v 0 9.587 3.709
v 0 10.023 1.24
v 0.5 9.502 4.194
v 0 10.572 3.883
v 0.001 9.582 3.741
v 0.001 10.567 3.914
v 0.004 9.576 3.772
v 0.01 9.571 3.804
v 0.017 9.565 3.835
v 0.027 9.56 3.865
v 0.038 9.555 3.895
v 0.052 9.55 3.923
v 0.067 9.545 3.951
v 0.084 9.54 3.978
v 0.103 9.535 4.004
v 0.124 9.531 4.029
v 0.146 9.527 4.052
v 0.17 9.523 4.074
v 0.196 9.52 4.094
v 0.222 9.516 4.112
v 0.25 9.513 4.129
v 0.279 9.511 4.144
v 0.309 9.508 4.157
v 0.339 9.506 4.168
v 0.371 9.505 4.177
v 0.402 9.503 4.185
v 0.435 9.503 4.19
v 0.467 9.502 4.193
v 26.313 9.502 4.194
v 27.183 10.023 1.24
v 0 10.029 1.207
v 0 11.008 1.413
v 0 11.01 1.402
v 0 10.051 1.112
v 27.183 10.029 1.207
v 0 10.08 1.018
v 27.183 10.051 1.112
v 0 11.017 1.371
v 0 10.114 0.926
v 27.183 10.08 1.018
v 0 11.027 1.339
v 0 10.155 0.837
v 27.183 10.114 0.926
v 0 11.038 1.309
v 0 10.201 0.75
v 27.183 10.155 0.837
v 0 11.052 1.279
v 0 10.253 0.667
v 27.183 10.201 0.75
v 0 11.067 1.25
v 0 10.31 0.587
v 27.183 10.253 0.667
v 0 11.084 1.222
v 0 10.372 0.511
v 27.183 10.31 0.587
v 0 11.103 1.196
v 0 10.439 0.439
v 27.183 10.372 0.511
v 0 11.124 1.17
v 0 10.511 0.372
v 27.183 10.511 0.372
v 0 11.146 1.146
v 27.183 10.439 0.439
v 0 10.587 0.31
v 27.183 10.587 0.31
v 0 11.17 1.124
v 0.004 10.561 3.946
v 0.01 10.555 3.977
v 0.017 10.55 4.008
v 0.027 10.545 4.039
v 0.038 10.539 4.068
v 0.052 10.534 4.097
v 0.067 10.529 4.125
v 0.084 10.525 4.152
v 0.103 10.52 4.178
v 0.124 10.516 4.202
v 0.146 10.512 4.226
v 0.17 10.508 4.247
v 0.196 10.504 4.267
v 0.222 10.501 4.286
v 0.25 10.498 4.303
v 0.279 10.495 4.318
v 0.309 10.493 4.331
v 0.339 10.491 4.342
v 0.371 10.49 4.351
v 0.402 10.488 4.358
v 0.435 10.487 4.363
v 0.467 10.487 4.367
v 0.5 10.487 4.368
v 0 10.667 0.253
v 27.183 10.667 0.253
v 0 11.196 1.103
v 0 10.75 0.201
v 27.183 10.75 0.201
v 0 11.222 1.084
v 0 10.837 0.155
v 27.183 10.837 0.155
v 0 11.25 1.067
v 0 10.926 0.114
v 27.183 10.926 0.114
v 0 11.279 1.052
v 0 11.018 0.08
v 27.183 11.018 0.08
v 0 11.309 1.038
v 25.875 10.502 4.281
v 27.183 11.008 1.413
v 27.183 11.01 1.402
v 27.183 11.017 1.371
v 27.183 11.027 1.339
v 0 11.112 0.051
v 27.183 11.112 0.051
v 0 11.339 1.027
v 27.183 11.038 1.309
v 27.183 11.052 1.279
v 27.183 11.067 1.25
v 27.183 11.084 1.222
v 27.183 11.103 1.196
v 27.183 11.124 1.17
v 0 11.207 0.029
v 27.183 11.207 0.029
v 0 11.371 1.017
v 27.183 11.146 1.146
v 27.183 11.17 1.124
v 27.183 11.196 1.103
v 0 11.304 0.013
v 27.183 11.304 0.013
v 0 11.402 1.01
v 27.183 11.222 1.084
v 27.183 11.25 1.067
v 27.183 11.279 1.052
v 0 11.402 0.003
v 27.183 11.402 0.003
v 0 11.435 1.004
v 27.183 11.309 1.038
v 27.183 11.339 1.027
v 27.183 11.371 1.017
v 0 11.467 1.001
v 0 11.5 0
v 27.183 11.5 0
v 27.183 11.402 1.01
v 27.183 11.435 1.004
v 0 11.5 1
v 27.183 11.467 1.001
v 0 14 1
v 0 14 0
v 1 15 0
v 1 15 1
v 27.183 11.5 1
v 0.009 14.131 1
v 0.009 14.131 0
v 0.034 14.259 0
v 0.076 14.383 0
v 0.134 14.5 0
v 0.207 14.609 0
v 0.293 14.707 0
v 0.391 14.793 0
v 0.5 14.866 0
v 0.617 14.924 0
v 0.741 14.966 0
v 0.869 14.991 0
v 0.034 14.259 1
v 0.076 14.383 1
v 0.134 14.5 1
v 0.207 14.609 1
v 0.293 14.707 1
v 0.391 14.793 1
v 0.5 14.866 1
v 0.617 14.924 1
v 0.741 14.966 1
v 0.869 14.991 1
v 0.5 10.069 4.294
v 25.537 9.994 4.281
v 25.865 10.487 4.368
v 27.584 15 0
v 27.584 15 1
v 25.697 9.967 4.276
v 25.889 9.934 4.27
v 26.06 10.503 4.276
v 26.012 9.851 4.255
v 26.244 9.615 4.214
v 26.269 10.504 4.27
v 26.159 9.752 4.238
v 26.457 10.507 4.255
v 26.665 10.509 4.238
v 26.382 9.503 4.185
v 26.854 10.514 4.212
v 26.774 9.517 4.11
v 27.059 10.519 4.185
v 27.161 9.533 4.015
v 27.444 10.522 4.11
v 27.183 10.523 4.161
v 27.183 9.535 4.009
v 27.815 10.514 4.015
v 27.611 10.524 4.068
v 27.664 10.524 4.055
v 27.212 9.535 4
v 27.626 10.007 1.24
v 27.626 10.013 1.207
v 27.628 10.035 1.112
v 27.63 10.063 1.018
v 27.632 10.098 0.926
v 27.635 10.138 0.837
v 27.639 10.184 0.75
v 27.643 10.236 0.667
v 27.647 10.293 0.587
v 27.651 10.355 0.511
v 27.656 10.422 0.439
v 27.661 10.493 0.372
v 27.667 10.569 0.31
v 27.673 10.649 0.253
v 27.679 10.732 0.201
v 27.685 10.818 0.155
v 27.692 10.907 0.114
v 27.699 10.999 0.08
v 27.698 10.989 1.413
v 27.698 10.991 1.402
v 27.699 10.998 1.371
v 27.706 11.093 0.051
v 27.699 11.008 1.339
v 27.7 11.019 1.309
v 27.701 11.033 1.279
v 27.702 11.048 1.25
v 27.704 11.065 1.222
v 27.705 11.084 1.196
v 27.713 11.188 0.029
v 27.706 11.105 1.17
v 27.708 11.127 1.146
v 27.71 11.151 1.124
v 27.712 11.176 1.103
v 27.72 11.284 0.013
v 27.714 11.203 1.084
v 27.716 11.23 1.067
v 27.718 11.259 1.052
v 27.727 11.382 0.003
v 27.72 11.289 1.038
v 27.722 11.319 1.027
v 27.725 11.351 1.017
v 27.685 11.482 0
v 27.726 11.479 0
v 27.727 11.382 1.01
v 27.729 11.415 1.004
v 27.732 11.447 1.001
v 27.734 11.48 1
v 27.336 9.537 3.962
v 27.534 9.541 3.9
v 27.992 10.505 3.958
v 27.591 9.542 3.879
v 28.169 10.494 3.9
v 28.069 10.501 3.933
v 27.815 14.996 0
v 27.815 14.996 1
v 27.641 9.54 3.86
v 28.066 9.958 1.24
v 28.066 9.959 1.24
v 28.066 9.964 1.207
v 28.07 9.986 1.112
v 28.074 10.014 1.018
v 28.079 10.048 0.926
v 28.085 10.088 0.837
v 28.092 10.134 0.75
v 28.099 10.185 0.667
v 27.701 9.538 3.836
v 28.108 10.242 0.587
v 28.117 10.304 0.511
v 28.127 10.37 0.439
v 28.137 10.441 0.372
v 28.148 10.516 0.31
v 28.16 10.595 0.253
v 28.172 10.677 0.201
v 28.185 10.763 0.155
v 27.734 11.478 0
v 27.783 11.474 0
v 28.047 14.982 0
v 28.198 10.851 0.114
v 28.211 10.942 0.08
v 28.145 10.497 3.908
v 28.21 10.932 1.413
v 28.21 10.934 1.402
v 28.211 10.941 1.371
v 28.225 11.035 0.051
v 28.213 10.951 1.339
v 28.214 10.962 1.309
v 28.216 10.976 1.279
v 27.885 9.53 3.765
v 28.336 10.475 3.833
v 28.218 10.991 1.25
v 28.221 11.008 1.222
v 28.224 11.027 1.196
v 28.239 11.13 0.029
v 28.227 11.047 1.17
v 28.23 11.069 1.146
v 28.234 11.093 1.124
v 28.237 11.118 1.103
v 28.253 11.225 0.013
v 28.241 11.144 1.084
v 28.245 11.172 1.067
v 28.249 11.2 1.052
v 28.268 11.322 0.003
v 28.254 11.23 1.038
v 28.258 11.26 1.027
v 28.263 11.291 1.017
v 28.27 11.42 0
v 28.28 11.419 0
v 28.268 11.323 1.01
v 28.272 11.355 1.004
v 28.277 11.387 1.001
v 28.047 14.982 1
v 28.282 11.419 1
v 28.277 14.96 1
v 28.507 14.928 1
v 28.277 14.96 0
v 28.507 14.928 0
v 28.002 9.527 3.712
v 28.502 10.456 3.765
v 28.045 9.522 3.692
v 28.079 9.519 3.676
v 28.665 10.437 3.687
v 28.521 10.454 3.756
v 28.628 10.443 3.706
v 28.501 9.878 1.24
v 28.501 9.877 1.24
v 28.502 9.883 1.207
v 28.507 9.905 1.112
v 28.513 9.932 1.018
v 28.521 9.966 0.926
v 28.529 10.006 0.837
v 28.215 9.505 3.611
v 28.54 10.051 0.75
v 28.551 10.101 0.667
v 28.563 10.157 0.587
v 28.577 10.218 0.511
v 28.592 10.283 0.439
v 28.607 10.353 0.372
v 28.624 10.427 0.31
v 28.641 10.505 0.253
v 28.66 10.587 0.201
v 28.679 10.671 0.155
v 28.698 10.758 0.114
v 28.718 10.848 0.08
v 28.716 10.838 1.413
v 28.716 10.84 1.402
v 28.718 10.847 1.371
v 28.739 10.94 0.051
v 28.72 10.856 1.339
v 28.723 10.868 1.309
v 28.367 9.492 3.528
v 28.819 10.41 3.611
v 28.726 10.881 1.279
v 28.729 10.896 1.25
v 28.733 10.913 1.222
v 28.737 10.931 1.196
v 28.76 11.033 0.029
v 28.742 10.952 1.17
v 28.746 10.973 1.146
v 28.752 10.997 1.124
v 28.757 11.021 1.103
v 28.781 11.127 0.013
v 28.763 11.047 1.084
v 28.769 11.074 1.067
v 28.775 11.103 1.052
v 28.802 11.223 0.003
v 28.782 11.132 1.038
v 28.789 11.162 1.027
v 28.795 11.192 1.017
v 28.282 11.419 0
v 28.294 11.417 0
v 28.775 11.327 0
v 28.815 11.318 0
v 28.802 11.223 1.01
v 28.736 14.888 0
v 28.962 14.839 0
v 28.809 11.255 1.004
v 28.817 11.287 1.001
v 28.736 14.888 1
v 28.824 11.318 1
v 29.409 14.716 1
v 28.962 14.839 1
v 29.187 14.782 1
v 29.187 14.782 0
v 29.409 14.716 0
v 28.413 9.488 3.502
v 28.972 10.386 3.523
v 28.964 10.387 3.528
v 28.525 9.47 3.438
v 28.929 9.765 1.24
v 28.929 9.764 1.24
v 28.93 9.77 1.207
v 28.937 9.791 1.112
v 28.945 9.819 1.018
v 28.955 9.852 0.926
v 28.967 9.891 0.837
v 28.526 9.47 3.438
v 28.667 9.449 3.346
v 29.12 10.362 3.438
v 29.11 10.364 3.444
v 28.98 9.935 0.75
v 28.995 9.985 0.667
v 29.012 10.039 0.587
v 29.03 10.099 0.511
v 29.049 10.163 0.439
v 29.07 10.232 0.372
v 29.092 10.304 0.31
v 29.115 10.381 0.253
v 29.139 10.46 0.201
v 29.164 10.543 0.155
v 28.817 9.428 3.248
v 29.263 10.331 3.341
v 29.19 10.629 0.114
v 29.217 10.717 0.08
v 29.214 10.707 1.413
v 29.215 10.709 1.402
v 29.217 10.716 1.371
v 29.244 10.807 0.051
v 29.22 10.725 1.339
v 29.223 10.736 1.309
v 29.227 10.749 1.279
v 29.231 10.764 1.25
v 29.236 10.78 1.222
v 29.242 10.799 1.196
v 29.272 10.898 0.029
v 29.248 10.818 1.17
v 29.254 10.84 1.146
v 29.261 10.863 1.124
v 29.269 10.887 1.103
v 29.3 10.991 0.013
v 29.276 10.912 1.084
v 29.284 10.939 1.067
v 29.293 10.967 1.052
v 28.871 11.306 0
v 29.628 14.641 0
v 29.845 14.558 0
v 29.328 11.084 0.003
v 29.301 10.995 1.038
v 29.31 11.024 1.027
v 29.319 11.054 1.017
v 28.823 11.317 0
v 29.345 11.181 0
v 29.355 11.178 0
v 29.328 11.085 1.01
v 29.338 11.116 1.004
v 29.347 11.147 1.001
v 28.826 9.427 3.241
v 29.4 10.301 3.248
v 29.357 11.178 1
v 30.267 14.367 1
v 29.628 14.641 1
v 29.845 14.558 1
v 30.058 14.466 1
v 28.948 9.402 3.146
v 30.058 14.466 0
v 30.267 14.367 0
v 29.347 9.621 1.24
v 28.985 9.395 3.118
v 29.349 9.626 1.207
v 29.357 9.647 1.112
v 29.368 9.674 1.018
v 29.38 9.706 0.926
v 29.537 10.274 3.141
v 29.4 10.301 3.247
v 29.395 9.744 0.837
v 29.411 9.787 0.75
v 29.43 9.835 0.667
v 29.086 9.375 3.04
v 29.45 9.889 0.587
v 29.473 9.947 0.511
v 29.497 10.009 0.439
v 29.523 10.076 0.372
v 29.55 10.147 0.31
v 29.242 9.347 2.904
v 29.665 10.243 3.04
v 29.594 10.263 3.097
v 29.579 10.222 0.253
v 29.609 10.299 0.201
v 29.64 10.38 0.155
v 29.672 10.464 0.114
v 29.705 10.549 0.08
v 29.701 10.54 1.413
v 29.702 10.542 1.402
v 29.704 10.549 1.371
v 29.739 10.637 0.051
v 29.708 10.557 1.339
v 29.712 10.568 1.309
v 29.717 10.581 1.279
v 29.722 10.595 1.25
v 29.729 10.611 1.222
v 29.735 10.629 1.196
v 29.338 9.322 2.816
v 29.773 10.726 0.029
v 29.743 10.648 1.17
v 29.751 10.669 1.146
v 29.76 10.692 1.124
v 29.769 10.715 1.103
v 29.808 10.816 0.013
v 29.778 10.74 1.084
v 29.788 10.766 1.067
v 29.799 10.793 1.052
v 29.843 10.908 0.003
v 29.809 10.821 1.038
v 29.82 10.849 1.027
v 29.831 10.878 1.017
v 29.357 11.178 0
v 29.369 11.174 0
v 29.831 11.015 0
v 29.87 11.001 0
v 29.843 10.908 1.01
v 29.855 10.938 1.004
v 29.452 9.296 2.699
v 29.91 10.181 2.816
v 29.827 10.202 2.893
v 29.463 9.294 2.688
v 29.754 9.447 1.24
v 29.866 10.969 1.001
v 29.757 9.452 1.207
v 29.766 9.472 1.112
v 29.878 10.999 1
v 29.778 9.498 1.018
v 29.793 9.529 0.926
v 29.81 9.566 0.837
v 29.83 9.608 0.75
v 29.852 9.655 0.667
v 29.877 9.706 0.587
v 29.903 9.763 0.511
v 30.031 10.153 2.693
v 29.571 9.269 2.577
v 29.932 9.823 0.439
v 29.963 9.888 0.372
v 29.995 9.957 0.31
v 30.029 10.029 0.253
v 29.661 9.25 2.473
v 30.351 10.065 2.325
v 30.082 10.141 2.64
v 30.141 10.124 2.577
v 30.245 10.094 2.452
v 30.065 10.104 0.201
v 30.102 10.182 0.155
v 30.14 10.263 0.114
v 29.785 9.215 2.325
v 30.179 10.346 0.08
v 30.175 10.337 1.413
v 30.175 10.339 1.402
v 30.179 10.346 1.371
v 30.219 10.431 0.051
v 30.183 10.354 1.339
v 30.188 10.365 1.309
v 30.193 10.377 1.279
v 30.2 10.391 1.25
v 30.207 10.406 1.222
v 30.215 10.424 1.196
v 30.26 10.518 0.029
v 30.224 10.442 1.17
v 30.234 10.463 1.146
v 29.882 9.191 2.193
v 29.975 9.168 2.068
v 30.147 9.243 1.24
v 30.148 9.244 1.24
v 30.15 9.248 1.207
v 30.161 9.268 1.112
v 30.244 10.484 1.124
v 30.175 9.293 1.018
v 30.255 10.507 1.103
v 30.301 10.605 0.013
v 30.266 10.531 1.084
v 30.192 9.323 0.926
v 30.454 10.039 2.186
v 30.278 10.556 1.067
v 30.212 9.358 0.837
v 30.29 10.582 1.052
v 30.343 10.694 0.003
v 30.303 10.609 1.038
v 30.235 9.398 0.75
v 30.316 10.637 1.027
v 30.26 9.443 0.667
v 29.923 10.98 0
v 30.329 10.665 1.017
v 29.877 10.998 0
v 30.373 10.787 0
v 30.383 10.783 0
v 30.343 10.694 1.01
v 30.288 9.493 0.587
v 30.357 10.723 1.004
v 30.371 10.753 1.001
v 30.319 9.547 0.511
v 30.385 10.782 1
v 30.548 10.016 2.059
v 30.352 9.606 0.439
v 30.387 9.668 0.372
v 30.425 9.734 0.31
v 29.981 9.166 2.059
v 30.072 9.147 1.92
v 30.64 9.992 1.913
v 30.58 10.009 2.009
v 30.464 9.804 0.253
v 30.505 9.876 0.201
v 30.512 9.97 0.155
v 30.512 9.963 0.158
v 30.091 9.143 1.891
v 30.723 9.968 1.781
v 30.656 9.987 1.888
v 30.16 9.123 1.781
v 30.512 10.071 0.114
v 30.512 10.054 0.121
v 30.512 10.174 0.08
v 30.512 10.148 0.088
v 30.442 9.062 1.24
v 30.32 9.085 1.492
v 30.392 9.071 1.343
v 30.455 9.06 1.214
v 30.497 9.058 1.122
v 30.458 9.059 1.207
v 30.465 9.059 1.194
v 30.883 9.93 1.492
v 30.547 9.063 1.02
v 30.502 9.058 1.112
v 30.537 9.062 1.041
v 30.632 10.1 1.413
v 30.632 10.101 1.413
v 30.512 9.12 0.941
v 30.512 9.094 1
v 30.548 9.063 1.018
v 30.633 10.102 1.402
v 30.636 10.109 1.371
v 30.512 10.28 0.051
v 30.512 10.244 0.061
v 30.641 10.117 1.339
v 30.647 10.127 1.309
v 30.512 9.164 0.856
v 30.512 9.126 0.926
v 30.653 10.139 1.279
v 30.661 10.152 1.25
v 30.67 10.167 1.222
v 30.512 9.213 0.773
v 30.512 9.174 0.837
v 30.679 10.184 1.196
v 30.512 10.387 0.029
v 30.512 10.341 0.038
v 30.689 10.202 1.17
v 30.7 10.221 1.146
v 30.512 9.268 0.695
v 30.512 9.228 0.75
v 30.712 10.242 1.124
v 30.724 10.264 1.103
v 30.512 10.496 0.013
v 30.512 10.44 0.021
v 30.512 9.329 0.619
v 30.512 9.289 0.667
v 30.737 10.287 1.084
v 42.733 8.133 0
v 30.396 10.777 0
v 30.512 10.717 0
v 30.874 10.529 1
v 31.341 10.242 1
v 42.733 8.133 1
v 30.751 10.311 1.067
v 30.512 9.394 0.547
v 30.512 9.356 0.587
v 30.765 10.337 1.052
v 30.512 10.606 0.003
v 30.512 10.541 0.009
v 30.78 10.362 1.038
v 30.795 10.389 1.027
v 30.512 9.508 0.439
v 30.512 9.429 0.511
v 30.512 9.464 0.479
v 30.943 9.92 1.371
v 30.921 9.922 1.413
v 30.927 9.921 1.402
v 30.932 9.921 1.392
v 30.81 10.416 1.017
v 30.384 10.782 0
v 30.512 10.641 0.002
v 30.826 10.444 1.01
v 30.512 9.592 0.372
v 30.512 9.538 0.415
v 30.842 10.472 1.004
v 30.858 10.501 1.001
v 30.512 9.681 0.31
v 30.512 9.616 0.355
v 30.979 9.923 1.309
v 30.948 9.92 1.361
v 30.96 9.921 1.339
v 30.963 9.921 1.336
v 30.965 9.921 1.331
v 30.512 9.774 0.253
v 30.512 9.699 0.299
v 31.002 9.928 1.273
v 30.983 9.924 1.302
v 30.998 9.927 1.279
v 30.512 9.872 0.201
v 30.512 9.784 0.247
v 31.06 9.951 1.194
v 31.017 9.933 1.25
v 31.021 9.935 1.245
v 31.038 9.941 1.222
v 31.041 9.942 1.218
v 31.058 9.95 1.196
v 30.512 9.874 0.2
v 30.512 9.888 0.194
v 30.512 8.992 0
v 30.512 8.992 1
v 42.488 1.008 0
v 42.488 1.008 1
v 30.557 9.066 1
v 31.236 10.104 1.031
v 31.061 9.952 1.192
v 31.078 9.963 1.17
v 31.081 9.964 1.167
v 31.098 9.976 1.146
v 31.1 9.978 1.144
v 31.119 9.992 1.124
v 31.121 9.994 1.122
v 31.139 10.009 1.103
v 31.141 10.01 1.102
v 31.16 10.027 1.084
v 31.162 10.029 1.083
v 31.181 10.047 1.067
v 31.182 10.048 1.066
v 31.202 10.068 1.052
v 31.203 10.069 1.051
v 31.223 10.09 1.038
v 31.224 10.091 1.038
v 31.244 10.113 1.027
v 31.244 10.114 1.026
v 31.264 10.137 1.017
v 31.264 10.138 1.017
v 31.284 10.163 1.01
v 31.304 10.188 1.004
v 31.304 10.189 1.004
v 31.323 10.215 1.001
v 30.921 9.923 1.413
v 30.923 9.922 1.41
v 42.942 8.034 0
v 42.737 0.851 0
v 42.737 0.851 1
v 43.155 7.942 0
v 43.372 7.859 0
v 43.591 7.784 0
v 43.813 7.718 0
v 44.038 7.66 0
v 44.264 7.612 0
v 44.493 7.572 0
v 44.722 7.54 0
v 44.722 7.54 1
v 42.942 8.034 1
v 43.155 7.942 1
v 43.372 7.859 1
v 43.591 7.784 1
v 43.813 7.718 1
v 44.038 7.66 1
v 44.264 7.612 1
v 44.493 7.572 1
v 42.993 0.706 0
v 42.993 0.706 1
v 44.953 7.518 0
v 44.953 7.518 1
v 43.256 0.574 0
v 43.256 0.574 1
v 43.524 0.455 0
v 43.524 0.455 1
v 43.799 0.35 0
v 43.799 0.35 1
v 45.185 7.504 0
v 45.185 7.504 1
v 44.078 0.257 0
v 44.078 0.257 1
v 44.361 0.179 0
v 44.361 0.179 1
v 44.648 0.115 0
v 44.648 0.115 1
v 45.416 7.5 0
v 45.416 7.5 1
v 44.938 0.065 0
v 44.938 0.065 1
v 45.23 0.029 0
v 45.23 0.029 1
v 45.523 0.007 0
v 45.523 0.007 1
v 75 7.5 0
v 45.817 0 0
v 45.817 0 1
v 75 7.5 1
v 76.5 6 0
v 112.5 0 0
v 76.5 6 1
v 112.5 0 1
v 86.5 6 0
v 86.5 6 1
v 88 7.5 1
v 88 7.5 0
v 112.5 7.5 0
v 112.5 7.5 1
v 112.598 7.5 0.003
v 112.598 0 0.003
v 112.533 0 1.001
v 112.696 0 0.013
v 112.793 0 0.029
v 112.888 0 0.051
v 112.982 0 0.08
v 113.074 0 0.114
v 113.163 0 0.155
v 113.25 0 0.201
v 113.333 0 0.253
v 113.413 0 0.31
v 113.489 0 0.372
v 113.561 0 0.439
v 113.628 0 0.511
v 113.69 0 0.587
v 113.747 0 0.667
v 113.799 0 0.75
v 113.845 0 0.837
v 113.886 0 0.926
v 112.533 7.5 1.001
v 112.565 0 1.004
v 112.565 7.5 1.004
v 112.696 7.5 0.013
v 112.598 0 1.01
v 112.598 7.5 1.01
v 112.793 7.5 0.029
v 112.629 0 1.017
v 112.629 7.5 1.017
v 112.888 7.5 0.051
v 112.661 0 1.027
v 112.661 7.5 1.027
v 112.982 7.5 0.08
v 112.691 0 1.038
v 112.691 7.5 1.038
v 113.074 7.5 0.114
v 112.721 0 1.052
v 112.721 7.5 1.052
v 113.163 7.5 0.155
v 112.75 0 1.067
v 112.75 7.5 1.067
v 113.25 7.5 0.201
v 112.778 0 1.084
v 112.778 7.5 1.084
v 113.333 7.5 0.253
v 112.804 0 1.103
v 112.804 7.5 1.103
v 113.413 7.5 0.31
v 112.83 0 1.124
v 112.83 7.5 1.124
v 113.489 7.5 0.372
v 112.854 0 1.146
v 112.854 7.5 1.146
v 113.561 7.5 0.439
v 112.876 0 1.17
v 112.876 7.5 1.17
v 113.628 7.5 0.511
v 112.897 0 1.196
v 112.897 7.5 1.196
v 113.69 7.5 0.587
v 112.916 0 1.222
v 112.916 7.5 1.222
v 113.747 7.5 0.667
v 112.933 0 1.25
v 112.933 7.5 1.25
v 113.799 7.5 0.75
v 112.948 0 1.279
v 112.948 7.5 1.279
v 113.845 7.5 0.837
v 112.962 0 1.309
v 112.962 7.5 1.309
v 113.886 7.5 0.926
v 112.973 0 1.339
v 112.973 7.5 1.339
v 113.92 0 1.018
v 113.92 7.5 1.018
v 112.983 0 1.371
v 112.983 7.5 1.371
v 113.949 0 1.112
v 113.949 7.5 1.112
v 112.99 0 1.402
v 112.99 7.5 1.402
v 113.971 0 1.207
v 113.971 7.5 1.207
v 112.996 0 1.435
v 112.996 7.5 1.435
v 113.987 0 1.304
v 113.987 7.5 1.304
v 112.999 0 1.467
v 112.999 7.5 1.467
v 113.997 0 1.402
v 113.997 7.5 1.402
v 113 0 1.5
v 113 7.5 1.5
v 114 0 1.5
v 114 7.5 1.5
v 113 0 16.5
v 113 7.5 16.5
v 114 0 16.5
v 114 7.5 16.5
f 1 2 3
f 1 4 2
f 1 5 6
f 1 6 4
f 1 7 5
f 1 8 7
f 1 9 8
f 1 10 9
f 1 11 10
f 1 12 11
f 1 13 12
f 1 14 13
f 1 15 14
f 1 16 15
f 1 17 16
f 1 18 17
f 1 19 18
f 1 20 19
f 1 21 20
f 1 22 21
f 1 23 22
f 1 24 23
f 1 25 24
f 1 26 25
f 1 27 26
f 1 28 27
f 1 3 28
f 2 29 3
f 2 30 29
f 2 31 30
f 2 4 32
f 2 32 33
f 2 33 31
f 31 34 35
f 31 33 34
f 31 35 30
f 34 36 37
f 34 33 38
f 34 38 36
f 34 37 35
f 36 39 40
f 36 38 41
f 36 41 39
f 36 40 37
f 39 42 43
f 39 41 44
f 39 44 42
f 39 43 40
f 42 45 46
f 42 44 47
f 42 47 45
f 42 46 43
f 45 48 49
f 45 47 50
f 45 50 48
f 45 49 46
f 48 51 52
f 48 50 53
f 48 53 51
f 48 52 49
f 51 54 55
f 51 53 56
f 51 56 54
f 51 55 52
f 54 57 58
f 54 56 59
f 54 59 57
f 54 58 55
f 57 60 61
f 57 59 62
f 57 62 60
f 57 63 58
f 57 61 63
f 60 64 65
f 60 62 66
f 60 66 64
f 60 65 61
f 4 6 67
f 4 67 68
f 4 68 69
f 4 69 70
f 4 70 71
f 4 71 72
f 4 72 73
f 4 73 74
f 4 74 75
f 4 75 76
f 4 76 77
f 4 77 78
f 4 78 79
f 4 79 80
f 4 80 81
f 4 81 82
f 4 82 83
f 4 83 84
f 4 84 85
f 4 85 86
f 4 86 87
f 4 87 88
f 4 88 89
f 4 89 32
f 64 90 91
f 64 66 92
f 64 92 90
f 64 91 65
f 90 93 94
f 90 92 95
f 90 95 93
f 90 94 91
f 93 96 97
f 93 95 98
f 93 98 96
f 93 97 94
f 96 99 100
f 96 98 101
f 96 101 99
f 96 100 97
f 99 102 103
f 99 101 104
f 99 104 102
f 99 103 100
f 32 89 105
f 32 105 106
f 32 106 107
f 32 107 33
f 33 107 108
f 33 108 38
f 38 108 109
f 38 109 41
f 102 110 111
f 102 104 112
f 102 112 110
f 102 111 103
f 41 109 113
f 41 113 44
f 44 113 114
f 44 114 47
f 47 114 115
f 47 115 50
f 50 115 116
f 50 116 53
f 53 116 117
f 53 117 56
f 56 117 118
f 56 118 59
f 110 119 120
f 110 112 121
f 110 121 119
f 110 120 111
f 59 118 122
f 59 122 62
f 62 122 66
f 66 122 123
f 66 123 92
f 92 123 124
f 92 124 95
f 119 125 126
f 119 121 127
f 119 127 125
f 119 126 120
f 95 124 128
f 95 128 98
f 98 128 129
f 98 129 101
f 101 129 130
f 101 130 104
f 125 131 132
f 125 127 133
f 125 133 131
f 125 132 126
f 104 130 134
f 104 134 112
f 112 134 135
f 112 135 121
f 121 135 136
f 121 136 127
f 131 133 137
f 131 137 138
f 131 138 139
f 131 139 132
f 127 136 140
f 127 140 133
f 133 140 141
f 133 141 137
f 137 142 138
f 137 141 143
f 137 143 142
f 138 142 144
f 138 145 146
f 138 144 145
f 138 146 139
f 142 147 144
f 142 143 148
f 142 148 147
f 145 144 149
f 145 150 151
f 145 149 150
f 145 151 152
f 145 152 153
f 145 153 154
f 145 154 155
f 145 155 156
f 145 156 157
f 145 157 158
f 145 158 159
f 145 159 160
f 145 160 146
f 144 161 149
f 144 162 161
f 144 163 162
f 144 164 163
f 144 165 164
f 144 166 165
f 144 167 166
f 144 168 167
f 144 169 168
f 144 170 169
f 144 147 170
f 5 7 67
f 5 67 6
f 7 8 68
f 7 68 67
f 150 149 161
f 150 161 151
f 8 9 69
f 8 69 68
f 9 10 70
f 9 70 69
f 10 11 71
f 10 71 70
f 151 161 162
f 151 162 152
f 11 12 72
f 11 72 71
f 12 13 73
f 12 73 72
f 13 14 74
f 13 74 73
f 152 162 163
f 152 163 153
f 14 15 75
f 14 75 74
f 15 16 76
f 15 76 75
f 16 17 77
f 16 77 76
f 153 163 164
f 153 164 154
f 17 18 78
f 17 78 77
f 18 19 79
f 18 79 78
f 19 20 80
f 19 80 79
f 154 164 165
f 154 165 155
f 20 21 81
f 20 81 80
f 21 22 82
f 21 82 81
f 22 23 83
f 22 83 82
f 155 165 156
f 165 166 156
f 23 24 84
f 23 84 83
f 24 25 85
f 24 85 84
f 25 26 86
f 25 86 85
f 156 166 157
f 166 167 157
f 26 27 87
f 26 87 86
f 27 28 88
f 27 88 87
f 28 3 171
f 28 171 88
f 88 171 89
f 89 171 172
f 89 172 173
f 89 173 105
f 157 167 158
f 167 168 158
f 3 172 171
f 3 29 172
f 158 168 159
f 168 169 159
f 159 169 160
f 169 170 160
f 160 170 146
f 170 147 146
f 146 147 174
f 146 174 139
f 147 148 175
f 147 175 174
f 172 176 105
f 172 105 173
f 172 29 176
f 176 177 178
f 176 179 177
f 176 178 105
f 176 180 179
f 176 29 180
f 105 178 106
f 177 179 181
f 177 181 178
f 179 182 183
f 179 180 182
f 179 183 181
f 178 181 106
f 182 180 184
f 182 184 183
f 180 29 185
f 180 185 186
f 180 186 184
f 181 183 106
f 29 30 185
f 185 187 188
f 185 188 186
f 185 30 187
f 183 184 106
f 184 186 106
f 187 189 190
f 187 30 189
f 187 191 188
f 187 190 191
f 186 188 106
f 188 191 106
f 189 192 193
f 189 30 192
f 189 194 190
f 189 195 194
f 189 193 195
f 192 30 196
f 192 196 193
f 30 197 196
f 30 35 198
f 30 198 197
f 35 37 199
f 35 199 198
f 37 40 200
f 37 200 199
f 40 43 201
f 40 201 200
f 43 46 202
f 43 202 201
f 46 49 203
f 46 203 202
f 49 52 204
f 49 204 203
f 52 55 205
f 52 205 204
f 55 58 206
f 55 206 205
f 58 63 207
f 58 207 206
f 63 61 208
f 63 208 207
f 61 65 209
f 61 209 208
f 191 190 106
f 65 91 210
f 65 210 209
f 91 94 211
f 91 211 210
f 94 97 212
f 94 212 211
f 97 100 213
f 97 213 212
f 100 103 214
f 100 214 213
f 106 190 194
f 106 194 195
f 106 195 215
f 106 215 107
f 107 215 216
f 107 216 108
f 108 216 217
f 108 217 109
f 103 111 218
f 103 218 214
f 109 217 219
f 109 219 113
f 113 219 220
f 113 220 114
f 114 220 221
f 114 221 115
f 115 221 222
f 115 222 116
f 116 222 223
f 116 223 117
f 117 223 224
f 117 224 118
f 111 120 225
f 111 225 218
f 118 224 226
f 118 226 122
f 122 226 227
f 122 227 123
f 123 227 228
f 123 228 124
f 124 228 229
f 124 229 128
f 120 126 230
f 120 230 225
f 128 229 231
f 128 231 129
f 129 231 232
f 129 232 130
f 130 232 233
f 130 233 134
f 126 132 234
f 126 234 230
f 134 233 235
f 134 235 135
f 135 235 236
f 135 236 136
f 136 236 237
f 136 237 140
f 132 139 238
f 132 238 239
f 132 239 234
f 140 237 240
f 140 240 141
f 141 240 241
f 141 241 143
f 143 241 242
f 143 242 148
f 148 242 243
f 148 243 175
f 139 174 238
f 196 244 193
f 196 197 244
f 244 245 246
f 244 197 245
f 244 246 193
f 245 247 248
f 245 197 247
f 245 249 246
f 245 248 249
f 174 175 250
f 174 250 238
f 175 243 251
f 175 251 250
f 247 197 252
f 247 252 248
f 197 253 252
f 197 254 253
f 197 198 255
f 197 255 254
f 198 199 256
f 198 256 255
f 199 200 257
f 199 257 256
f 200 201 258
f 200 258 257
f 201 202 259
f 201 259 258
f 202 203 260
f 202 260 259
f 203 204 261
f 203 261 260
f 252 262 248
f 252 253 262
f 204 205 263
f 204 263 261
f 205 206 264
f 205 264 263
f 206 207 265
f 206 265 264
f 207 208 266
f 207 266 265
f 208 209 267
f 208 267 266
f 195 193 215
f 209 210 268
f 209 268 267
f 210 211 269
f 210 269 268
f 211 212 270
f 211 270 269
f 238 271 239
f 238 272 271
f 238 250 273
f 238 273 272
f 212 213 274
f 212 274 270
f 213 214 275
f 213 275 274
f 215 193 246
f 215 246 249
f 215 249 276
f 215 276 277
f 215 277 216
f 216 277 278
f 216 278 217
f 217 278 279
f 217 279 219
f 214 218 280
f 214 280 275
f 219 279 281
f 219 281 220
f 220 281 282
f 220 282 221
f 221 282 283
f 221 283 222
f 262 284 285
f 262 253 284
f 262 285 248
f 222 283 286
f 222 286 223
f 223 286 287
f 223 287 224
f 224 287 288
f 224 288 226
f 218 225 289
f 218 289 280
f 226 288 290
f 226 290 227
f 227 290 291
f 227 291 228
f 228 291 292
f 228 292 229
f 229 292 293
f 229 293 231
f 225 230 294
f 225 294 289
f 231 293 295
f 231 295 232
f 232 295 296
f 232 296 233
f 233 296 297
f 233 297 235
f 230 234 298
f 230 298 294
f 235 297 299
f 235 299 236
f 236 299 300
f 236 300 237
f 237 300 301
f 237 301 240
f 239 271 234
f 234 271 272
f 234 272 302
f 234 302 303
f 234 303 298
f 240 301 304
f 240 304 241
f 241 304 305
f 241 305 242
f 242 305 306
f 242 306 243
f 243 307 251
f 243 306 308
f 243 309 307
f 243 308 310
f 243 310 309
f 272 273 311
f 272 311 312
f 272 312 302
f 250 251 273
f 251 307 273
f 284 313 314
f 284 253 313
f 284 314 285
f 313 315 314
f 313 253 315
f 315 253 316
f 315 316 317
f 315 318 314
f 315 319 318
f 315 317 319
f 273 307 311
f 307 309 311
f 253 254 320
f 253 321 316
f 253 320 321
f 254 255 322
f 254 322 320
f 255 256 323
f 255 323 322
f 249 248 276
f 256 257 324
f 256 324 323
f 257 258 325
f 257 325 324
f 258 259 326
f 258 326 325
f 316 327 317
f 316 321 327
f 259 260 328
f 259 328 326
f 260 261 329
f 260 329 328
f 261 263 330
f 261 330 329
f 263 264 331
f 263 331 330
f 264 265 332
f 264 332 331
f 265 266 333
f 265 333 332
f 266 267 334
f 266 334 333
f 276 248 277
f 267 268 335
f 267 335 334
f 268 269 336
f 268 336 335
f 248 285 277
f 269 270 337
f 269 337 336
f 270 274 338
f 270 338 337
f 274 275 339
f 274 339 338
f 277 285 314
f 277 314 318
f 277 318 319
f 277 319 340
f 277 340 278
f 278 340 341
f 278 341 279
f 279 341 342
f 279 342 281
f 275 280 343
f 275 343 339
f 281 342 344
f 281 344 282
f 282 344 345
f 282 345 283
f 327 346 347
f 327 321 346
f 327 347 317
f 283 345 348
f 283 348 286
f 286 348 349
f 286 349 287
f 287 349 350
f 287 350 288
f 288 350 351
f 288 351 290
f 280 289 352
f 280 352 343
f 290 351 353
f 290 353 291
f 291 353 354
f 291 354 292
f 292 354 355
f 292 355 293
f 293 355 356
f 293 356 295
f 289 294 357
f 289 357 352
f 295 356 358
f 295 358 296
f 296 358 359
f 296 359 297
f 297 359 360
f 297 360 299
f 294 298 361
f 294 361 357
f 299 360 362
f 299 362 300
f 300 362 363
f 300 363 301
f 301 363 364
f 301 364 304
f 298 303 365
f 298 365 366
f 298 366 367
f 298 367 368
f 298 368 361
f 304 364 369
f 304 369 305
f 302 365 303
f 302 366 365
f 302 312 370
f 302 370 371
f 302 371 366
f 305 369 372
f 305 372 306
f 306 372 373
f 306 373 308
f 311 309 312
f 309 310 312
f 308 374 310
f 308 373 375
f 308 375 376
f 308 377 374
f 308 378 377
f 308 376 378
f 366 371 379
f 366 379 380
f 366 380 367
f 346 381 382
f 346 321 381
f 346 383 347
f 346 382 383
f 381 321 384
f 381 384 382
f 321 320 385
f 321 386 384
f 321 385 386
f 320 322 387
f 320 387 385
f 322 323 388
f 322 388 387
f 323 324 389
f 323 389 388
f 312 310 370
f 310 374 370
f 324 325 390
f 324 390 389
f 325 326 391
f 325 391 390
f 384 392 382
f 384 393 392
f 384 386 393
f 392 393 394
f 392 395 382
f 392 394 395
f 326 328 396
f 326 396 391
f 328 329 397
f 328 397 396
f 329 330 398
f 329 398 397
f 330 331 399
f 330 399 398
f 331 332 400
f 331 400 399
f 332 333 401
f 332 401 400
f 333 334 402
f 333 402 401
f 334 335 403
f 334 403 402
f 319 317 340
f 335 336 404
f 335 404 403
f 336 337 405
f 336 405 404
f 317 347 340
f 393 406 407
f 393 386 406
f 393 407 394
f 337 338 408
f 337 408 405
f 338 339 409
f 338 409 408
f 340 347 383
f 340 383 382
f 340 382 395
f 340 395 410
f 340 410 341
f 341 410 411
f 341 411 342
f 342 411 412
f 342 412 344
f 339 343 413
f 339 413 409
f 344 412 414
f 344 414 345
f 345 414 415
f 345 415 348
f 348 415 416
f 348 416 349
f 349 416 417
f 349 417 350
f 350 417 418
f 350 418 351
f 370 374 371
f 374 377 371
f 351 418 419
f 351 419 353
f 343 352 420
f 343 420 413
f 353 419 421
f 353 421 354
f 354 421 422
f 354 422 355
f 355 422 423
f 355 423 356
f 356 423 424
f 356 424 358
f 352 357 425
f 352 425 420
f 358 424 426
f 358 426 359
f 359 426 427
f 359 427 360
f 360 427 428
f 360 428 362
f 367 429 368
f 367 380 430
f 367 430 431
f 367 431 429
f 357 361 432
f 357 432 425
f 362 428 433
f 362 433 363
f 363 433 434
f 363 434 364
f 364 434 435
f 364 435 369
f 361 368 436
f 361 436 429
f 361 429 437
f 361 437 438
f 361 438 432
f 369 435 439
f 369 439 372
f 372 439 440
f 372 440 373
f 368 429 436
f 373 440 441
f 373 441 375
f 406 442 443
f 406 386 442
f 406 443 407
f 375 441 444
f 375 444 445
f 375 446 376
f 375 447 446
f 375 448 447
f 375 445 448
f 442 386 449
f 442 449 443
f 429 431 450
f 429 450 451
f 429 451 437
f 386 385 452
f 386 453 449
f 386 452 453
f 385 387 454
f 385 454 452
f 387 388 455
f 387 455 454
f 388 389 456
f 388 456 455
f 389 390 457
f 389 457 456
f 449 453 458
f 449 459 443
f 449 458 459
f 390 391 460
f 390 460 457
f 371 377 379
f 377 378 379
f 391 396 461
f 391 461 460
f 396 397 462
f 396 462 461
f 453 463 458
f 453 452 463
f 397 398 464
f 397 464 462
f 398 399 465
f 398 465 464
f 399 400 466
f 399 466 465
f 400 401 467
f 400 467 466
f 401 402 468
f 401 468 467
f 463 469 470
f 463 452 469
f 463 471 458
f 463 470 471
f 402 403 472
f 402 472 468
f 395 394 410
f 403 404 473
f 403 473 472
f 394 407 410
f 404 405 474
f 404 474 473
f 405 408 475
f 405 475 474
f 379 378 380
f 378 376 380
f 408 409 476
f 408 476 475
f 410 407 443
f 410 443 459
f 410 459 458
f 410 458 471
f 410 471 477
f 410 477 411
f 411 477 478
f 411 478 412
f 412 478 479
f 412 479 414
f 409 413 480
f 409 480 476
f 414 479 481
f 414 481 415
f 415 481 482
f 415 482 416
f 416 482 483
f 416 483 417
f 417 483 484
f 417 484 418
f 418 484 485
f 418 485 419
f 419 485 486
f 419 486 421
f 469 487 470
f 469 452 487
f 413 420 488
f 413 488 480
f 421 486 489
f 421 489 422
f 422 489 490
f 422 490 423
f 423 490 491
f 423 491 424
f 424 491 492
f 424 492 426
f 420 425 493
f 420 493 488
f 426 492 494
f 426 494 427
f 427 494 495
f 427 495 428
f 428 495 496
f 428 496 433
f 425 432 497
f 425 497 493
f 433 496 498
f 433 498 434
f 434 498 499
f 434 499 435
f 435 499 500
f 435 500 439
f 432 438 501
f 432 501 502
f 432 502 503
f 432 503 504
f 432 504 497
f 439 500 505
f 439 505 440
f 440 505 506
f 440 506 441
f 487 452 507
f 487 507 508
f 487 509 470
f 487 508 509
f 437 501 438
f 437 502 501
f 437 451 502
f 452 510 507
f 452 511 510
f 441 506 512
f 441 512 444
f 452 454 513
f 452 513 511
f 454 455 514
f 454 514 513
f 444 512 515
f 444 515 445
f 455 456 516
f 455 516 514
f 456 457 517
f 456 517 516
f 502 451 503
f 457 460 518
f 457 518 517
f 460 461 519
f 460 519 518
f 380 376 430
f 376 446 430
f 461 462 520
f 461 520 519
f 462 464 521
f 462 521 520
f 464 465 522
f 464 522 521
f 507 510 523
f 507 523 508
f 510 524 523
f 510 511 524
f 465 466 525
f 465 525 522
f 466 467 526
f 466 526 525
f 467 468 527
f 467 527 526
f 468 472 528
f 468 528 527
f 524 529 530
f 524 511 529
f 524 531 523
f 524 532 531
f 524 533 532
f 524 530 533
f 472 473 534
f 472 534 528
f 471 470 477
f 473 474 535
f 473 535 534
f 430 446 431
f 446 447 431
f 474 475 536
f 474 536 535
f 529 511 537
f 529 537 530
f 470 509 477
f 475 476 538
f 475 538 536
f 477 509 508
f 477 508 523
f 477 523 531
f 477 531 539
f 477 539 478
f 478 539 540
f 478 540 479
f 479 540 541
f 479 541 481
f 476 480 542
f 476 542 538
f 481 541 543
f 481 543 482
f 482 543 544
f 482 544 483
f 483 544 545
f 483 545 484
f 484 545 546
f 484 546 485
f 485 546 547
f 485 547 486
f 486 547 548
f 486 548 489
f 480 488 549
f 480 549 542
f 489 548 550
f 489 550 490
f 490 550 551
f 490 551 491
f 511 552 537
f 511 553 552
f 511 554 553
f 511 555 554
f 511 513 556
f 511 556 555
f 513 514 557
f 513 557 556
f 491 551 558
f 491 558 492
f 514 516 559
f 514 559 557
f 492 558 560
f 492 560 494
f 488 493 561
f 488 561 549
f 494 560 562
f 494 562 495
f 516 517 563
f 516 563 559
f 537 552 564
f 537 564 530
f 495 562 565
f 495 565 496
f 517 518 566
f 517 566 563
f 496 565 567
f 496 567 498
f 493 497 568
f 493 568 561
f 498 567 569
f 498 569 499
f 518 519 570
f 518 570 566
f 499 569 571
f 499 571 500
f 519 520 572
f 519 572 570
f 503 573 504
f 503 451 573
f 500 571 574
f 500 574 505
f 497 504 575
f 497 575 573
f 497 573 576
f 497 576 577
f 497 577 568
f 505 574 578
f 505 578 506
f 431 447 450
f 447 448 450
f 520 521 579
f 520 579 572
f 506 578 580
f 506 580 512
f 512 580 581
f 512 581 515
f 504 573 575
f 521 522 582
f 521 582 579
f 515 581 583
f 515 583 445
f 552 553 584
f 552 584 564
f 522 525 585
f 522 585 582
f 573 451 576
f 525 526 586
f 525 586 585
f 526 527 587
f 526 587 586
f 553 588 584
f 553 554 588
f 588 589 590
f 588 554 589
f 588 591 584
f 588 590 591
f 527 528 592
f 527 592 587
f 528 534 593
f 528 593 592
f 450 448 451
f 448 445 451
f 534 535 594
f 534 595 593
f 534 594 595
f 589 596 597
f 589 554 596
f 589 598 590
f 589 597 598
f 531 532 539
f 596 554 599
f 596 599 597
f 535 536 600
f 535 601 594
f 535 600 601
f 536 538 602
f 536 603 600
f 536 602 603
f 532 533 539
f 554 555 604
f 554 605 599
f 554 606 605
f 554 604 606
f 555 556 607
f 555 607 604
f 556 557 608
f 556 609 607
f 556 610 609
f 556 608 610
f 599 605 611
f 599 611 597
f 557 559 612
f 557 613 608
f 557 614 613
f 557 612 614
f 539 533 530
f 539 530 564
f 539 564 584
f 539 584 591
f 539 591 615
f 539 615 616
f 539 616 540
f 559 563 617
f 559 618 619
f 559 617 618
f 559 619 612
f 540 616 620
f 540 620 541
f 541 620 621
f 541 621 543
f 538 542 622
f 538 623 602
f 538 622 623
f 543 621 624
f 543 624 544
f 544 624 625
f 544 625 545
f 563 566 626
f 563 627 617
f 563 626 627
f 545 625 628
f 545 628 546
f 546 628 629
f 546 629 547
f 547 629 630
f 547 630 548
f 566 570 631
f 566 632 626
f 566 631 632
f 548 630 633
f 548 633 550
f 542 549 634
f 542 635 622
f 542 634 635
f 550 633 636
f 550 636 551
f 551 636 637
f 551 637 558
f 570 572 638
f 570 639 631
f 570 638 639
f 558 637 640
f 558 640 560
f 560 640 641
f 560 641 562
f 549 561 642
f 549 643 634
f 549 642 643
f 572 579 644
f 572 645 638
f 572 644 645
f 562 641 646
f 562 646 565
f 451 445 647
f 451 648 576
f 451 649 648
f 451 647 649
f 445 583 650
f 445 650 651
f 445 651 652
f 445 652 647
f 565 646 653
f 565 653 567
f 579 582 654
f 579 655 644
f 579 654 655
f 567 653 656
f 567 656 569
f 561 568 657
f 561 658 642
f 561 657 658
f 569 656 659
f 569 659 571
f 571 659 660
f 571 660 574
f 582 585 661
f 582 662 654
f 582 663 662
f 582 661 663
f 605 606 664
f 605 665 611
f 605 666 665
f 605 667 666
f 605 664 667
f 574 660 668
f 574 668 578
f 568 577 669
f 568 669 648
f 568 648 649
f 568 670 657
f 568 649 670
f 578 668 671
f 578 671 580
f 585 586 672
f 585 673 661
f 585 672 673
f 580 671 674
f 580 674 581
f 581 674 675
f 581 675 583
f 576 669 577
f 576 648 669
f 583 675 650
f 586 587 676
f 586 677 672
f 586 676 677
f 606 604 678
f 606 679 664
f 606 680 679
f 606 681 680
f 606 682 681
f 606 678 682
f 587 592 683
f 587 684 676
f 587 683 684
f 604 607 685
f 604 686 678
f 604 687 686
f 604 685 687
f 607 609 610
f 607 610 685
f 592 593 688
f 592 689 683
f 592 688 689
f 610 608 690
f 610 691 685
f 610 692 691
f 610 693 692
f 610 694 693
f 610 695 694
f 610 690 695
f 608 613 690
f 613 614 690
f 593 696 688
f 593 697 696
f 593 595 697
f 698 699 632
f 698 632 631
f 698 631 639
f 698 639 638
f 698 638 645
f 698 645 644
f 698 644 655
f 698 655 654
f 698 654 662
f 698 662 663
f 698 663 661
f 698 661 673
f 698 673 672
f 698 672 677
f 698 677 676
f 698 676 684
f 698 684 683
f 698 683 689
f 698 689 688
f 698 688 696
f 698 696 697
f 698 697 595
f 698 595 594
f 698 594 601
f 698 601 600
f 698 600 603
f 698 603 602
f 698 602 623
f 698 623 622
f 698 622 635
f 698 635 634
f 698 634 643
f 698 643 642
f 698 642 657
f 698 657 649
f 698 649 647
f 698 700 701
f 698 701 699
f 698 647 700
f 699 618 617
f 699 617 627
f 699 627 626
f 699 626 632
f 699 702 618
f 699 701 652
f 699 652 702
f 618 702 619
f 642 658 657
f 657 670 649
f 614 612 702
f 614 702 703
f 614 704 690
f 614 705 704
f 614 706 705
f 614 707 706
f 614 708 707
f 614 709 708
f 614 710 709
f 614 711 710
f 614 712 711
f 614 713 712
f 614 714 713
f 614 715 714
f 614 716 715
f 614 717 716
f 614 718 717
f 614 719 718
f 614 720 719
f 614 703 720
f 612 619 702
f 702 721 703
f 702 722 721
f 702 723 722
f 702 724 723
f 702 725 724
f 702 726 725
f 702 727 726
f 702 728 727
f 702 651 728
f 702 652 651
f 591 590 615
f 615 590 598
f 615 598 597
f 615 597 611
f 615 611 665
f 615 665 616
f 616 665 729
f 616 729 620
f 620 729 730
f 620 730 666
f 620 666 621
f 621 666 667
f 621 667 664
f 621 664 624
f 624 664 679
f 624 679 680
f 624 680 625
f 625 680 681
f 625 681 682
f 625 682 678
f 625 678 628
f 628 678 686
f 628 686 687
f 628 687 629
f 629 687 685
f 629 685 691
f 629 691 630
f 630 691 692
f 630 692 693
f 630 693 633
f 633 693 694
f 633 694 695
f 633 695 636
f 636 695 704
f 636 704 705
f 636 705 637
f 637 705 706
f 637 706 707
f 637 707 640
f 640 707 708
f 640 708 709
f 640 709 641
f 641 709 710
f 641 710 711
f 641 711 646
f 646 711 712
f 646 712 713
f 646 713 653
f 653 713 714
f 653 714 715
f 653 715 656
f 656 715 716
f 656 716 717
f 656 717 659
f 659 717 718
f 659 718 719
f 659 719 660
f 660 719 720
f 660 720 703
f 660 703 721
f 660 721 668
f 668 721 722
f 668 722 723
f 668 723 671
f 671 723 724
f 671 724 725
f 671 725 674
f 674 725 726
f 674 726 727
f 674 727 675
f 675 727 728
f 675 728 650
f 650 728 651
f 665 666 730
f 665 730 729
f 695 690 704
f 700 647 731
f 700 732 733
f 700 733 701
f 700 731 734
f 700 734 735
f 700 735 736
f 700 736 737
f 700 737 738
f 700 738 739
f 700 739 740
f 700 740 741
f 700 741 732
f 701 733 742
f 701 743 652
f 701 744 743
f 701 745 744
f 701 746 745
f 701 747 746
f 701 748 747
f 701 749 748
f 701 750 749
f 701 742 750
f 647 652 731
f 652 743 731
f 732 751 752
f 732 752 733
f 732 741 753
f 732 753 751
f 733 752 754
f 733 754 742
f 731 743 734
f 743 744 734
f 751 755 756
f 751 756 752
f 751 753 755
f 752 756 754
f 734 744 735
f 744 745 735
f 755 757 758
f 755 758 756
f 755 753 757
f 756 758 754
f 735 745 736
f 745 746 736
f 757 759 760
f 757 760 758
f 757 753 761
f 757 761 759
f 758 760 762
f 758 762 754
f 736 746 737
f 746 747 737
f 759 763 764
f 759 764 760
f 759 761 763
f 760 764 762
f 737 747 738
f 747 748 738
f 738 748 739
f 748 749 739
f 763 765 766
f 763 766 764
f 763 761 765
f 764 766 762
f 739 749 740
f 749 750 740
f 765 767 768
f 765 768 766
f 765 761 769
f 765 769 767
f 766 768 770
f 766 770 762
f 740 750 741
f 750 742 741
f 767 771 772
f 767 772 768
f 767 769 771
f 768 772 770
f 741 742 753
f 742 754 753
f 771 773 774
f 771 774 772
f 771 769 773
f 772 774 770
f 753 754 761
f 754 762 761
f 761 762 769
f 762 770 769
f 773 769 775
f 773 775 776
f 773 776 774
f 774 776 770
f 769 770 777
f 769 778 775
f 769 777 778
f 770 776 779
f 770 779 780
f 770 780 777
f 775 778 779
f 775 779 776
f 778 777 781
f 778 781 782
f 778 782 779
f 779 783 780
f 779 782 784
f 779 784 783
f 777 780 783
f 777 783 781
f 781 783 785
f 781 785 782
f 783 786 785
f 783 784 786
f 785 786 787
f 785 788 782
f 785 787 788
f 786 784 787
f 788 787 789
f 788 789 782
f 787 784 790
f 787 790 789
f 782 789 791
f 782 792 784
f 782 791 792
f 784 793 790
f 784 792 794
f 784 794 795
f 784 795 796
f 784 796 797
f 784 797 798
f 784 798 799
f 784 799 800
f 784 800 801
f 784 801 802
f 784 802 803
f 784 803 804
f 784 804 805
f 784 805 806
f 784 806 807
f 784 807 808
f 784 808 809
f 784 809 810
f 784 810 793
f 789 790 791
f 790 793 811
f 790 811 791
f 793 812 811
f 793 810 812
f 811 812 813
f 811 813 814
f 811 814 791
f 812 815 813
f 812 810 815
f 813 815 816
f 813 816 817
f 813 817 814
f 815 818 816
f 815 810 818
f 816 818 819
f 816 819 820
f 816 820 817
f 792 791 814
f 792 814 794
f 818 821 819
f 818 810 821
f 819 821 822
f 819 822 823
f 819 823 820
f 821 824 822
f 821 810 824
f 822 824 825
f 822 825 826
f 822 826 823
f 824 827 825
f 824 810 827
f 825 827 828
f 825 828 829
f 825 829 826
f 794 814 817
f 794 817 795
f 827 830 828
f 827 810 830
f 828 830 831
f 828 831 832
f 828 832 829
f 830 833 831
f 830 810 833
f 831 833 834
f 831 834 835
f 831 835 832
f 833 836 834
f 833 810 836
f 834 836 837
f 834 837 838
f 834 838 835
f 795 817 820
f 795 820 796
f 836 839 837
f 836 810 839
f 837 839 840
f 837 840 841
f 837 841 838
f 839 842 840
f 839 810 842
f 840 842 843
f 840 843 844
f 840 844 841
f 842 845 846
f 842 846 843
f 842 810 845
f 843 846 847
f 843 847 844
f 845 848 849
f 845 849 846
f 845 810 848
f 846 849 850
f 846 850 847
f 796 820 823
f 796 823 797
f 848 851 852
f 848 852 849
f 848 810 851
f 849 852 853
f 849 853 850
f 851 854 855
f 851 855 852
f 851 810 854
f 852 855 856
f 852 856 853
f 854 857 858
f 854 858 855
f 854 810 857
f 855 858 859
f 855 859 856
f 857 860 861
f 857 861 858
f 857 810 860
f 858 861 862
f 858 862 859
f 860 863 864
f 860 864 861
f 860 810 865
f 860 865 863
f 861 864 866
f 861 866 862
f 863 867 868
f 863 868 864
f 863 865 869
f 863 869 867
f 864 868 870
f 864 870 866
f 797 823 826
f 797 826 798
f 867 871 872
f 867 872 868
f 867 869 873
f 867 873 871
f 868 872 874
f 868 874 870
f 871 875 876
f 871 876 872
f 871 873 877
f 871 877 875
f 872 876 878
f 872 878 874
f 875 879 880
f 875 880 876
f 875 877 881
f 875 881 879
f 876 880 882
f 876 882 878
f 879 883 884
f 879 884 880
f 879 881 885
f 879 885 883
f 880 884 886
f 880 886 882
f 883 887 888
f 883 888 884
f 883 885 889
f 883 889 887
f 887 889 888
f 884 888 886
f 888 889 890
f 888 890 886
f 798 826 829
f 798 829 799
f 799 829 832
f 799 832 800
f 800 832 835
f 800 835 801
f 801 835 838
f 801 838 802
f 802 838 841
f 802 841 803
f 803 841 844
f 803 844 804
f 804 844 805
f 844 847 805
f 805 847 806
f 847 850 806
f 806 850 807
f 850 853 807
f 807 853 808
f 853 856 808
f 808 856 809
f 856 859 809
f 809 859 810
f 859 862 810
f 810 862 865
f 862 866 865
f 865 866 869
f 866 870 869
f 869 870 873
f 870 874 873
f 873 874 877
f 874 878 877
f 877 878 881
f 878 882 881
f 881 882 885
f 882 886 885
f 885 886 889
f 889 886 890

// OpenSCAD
// ============================================================
//  T130 - Kirby armature lock (flat sheet-steel strip)
//  1mm flat strip, 7.5mm wide. One end folds up 90 deg (the
//  bent tab); partway along, an in-plane crank steps the strip
//  sideways (the "commutator side"). BASIC SHAPE.
//  Units: millimeters.
// ============================================================

// "3D"   -> colored folded tool  (export STL / 3MF)
// "Flat" -> flat-pattern blank    (export DXF / SVG; cut it, then fold on the bend lines)
// Flat/3D View
view    = "3D";        // ["3D", "Flat"]

// - stock -
thick        = 1.0;    // sheet thickness
width        = 7.5;    // strip width

// - 90 deg tab fold (one end) -
tab_len      = 15.0;   // straight length of the folded tab
bend_radius  = 0.5;    // INSIDE fold radius (outside = inside + thickness)

// - overall length + the in-plane crank -
overall_len  = 114.0;  // overall length INCLUDING the tab fold (X footprint)
jog_from_tab = 70.0;   // crank starts this far from the tab-fold end
jog_run      = 15.0;   // length the crank occupies along the strip
jog_offset   = 7.5;    // sideways (+Y) step: outer edge reaches width + jog_offset = 15
width2       = 5.0;    // width of the commutator segment (after the crank)
crank_radius = 6.0;    // fillet radius on the crank's 4 corners (curved, not sharp) - tune to the real tool

// - trapezoidal notch cut into side -
notch_from_tab = 26.0;  // notch starts this far from the bent-tip end
notch_len      = 13.0;  // notch length at the mouth (along X); ends at 26+13 = 39
notch_back     = 10.0;  // length of the trapezoid's flat back
notch_depth    = 1.5;   // how deep it cuts in from the +Y edge

// - commutator lip: fold UP along the inner edge of seg2 -
lip_height   = 3.0;    // how far the lip sticks up (along the flange)
lip_radius   = 0.5;    // INSIDE fold radius of the lip
lip_angle    = 100;    // angle between the lip and the flat (90 = square; >90 leans outward, away from the flat)
lip_taper_len = 5.0;   // horizontal run of the curved Z-taper at the lip's crank-end (0 = square end)

// - commutator-end tip corner radii (top view) -
tip_r_flat = 1.0;      // corner radius on the flat blade's outer tip
tip_r_lip  = 0.5;      // corner radius on the lip's inner tip

// neutral-axis K-factor for the flat-pattern bend allowances
kfactor = 0.5;

$fn = 96;

// - derived crank positions (X = 0 at commutator end) -
tab_x  = overall_len - (bend_radius + thick);  // flat run ends / fold begins (= 112.5)
jog_hi = overall_len - jog_from_tab;           // crank edge nearer the tab    (= 44)
jog_lo = jog_hi - jog_run;                     // crank edge nearer commutator (= 29)
ntab   = overall_len - notch_from_tab;                // notch edge nearer the tab    (= 88)
nfar   = overall_len - (notch_from_tab + notch_len);  // notch edge nearer commutator (= 75)
nslope = (notch_len - notch_back) / 2;               // run of each angled side       (= 1.5)
outer2 = width + jog_offset;                    // seg2 OUTER edge Y (= 15)
inner2 = outer2 - width2;                       // seg2 INNER edge Y (= 10)
lip_len = jog_lo;                               // lip runs the length of seg2 (X 0..jog_lo)
lip_ro     = lip_radius + thick;                // lip outside radius (= 1.5)
flat_inner = inner2 + lip_ro;                   // seg2 flat inner edge after the lip folds up (= 11.5 -> 3.5mm flat)

// ---- corner rounding: replace a sharp vertex with a tangent arc
// P1 is the corner; P0/P2 its neighbours. The bisector unit(v1+v2)
// always points into the wedge between the two edges - the material
// side of a convex corner, the empty side of a concave one - so the
// arc centre sits at corner + b*d either way. Tracing that arc then
// CUTS convex corners and FILLS concave ones automatically. So the
// two inside crank corners scoop in, the two outside ones round off.
function unit(v) = v / norm(v);
function round_corner(P0, P1, P2, r, steps = 12) =
  let(
    v1 = unit(P0 - P1),
    v2 = unit(P2 - P1),
    th = acos(v1 * v2),                                   // angle between the two edges
    t  = r / tan(th / 2),                                 // tangent distance from the corner
    b  = unit(v1 + v2),                                   // bisector into the wedge
    C  = P1 + b * (r / sin(th / 2)),                      // arc centre
    T1 = P1 + v1 * t,
    T2 = P1 + v2 * t,
    a1 = atan2(T1[1] - C[1], T1[0] - C[0]),
    a2 = atan2(T2[1] - C[1], T2[0] - C[0]),
    dd = ((a2 - a1) + 540) % 360 - 180                    // shortest signed sweep (minor arc)
  )
  [ for (i = [0:steps]) let(a = a1 + dd * i / steps) [C[0] + r * cos(a), C[1] + r * sin(a)] ];

// ---- c2 fillet geometry (crank <-> commutator inner corner) ----
// The lip follows this same arc so its fold line stays flush with the
// crank's inner edge. Mirrors what round_corner(c1,c2,c3) produces.
c2_v1 = [-1, 0];                                          // toward c1, along the Y=inner2 edge
c2_v2 = unit([jog_run, -inner2]);                        // toward c3, along the crank diagonal
c2_th = acos(c2_v1 * c2_v2);
c2_C  = [jog_lo, inner2] + unit(c2_v1 + c2_v2) * (crank_radius / sin(c2_th / 2));  // arc centre
c2_T1 = [jog_lo, inner2] + c2_v1 * (crank_radius / tan(c2_th / 2));  // straight-lip end (on Y=inner2)
c2_T2 = [jog_lo, inner2] + c2_v2 * (crank_radius / tan(c2_th / 2));  // fillet end (on the diagonal)
c2_a1 = atan2(c2_T1[1] - c2_C[1], c2_T1[0] - c2_C[0]);
c2_a2 = atan2(c2_T2[1] - c2_C[1], c2_T2[0] - c2_C[0]);
c2_dd = ((c2_a2 - c2_a1) + 540) % 360 - 180;             // signed sweep of the arc

// ---- flat blank, TOP view: the crank lives here ------------
// The four crank corners are filleted; the tab end and commutator
// end stay square (they fold, and aren't near the commutator).
module flat_outline() {
  c1 = [0,      inner2];   // commutator end, inner
  c2 = [jog_lo, inner2];   // seg2 inner -> crank        (round)
  c3 = [jog_hi, 0];        // crank inner -> seg1 inner   (round)
  c4 = [tab_x,  0];        // seg1 inner -> tab end
  c5 = [tab_x,  width];    // tab end, outer
  c6 = [jog_hi, width];    // seg1 outer -> crank         (round)
  c7 = [jog_lo, outer2];   // crank outer -> seg2 outer   (round)
  c8 = [0,      outer2];   // seg2 outer -> commutator end
  polygon(concat(
    [c1],
    round_corner(c1, c2, c3, crank_radius),   // into the jog, inner edge
    round_corner(c2, c3, c4, crank_radius),   // out of the jog, inner edge
    [c4, c5],
    round_corner(c5, c6, c7, crank_radius),   // out of the jog, outer edge
    round_corner(c6, c7, c8, crank_radius),   // into the jog, outer edge
    round_corner(c7, c8, c1, tip_r_flat)      // commutator outer tip (flat side)
  ));
}

// ---- tab-fold side profile (u = X, v = Z); tab is on Y[0..width]
module tabfold_profile() {
  r_i = bend_radius;
  r_o = r_i + thick;
  ov  = 1;                                                   // lead-in overlapping the blank
  union() {
    translate([tab_x - ov, 0]) square([ov, thick]);          // flat lead-in
    translate([tab_x, thick + r_i])                          // bend arc
      intersection() {
        difference() { circle(r_o); circle(r_i); }
        translate([0, -r_o]) square([r_o, r_o]);             // down-to-right quadrant
      }
    translate([tab_x + r_i, thick + r_i]) square([thick, tab_len]);   // tab
  }
}

// ---- trapezoidal notch (into the +Y edge) ------------------
module notch_2d() {
  polygon([
    [nfar,          width + 1],             // overhang above the edge (empty space)
    [ntab,          width + 1],
    [ntab,          width],                 // mouth, tab side
    [ntab - nslope, width - notch_depth],   // back, tab side
    [nfar + nslope, width - notch_depth],   // back, far side
    [nfar,          width]                  // mouth, far side
  ]);
}
module notch_cut() {                        // the notch as a 3D through-cutter
  translate([0, 0, -0.5]) linear_extrude(thick + 1) notch_2d();
}

// ---- commutator lip profile (u = Y, v = Z); extruded along X
// Folds up from the flat inner edge through `bend` degrees. bend = 90
// gives a square (vertical) lip; bend < 90 (lip_angle > 90) lets the
// flange lean outward, away from the flat - the real tool's ~100 deg.
module lip_profile() {
  r_i  = lip_radius;
  r_o  = r_i + thick;
  ov   = 1;                                                  // lead-in overlapping the flat
  bend = 180 - lip_angle;                                    // fold angle from the flat (90 - lean)
  O    = [flat_inner, thick + r_i];                          // inside-arc centre, above the flat inner edge
  phi  = -90 - bend;                                         // polar angle (from O) at the end of the bend
  Pin  = O + r_i * [cos(phi), sin(phi)];                     // inside corner where the flange starts
  Pout = O + r_o * [cos(phi), sin(phi)];                     // outside corner
  tang = [sin(phi), -cos(phi)];                              // unit direction the flange runs (up/away)
  union() {
    translate([flat_inner, 0]) square([ov, thick]);          // flat lead-in
    translate(O)                                             // bend arc: annulus sector, -90 down to -90-bend
      intersection() {
        difference() { circle(r_o); circle(r_i); }
        polygon(concat([[0, 0]],
          [ for (k = [0:12]) 1.5 * r_o * [cos(-90 - bend * k / 12), sin(-90 - bend * k / 12)] ]));
      }
    polygon([Pin, Pout, Pout + lip_height * tang, Pin + lip_height * tang]);  // straight flange
  }
}

// ---- lip cut: inner band of seg2 that folds up (follows contour)
// A band of width lip_ro hugging seg2's inner edge - straight, then
// curving along the c2 fillet - so the remaining flat edge (and the
// removed strip) track the crank instead of a straight line.
module lip_cut_2d() {
  intersection() {
    difference() { flat_outline(); offset(-lip_ro) flat_outline(); }
    polygon([[-1, -30], [c2_T2[0], -30], [c2_T2[0], flat_inner], [-1, flat_inner]]);
  }
}

// ---- taper the lip's crank-end down in Z (blended, no sharp rim) --
// The flange top follows the TOP arc of a cylinder placed so the arc is
// tangent to the flat top (a smooth blend, no rim to ride on the copper)
// and reaches the base right at the junction (T2). The cutter is the
// region ABOVE that arc, so the flange top rounds over into the slope.
module lip_end_taper() {
  R    = lip_taper_len;                                         // scoop radius (blend gentleness)
  ph   = -90 - (180 - lip_angle);
  ztop = thick + lip_radius + (lip_radius + thick / 2) * sin(ph) - lip_height * cos(ph);  // flange top Z (mid, for the lean)
  H    = ztop - thick;                                          // flange height above base
  cx   = -sqrt(H * (2 * R - H));                                // arc centre offset: tangent to top, base at T2
  translate([c2_T2[0], c2_T2[1], 0])
    rotate([0, 0, atan2(c2_v2[1], c2_v2[0])])                  // x' -> crank diagonal
      translate([0, 20, 0]) rotate([90, 0, 0])                 // extrude the (x'-Z) profile across the flange
        linear_extrude(40)
          difference() {
            translate([cx, ztop - R]) square([R + 0.5, R + 5]);   // everything above ...
            translate([cx, ztop - R]) circle(r = R, $fn = 96);    // ... the descending top arc
          }
}

// ---- round the lip's commutator tip (the folded blank corner) ------
// The lip is the inner strip of the 5mm segment, bent up. So its tip
// carries the same rounded corner as the flat blade, just bent upward:
// the flange's TOP-FRONT corner (top edge meets the tip, X=0), radius
// tip_r_lip - a curve in the X-Z side view, extruded across the flange.
module lip_tip_round() {
  R     = tip_r_lip;
  ph    = -90 - (180 - lip_angle);
  ztop  = thick + lip_radius + (lip_radius + thick) * sin(ph) - lip_height * cos(ph);  // flange top Z (outer)
  slope = tan(lip_angle - 90);                                // flange top slant dZ/dY (the lean)
  yref  = flat_inner + (lip_radius + thick) * cos(ph) + lip_height * sin(ph);  // Y of the outer top edge
  multmatrix([[1, 0, 0, 0], [0, 1, 0, 0], [0, slope, 1, -slope * yref], [0, 0, 0, 1]])  // tilt Z with Y to follow the slanted top
  translate([0, 11.5, 0]) rotate([90, 0, 0]) linear_extrude(20)
    difference() {
      translate([-1, ztop - R]) square([1 + R, R + 1]);        // top-front corner nook (X-Z)
      translate([R, ztop - R]) circle(r = R);                  // keep the fillet arc
    }
}

// ---- folded 3D tool ----------------------------------------
module t130_3d() {
  color("#c0c0c0") {                                          // silver; preview only
    difference() {
      linear_extrude(thick) flat_outline();                  // flat part (with crank)
      notch_cut();                                           // minus the trapezoidal notch
      translate([0, 0, -0.5]) linear_extrude(thick + 1) lip_cut_2d();  // remove the folded-up band (follows the contour)
    }
    translate([0, width, 0]) rotate([90, 0, 0])              // tab fold at Y[0..width]
      linear_extrude(width) tabfold_profile();
    // commutator lip: straight along Y=inner2, then curving along the
    // c2 fillet so the fold line stays flush with the crank's inner edge,
    // with its crank-end tapered down in Z (not a square end)
    difference() {
      union() {
        rotate([0, 0, 90]) rotate([90, 0, 0])
          linear_extrude(c2_T1[0]) lip_profile();            // straight part (X 0 .. fillet start)
        translate([c2_C[0], c2_C[1], 0])                     // curved part: revolve the profile along the fillet arc
          rotate([0, 0, c2_dd > 0 ? c2_a1 : c2_a2])
            rotate_extrude(angle = abs(c2_dd))
              translate([crank_radius - inner2, 0]) lip_profile();
      }
      lip_end_taper();      // curved taper at the crank end
      lip_tip_round();      // rounded corner at the commutator tip
    }
  }
}

// ---- flat pattern: developed blank + bend lines ------------
// The folded features unfold in-plane: the tab extends past its fold by
// its bend allowance + tab_len; the lip flange extends past its fold by
// its bend allowance + lip_height. Bend lines mark where to fold up.
function ba(angle_deg, ri) = angle_deg * PI / 180 * (ri + kfactor * thick);  // bend allowance

module flat_body() {                                          // the flat plate (no folds)
  difference() {
    flat_outline();
    lip_cut_2d();
    notch_2d();
  }
}

module flat_pattern() {
  w_lip = ba(180 - lip_angle, lip_radius) + lip_height;       // developed lip width beyond its fold
  l_tab = ba(90, bend_radius) + tab_len;                      // developed tab length beyond its fold
  union() {
    flat_body();
    translate([tab_x - 0.01, 0]) square([0.01 + l_tab, width]);          // developed tab
    intersection() {                                                     // developed lip flange
      difference() { offset(delta = w_lip) flat_body(); flat_body(); }
      polygon([[-0.5, flat_inner - w_lip - 2], [jog_lo, flat_inner - w_lip - 2],
               [jog_lo, flat_inner - 0.01],    [-0.5, flat_inner - 0.01]]);
    }
  }
}

module bend_lines() {                                         // fold references (not a cut)
  bl = 0.05;
  translate([tab_x - bl / 2, 0]) square([bl, width]);         // tab fold
  translate([0, flat_inner - bl / 2]) square([jog_lo, bl]);   // lip fold
}

// ---- output (flip 'view' at the top) -----------------------
if (view == "3D")        t130_3d();
else if (view == "Flat") { flat_pattern(); bend_lines(); }
